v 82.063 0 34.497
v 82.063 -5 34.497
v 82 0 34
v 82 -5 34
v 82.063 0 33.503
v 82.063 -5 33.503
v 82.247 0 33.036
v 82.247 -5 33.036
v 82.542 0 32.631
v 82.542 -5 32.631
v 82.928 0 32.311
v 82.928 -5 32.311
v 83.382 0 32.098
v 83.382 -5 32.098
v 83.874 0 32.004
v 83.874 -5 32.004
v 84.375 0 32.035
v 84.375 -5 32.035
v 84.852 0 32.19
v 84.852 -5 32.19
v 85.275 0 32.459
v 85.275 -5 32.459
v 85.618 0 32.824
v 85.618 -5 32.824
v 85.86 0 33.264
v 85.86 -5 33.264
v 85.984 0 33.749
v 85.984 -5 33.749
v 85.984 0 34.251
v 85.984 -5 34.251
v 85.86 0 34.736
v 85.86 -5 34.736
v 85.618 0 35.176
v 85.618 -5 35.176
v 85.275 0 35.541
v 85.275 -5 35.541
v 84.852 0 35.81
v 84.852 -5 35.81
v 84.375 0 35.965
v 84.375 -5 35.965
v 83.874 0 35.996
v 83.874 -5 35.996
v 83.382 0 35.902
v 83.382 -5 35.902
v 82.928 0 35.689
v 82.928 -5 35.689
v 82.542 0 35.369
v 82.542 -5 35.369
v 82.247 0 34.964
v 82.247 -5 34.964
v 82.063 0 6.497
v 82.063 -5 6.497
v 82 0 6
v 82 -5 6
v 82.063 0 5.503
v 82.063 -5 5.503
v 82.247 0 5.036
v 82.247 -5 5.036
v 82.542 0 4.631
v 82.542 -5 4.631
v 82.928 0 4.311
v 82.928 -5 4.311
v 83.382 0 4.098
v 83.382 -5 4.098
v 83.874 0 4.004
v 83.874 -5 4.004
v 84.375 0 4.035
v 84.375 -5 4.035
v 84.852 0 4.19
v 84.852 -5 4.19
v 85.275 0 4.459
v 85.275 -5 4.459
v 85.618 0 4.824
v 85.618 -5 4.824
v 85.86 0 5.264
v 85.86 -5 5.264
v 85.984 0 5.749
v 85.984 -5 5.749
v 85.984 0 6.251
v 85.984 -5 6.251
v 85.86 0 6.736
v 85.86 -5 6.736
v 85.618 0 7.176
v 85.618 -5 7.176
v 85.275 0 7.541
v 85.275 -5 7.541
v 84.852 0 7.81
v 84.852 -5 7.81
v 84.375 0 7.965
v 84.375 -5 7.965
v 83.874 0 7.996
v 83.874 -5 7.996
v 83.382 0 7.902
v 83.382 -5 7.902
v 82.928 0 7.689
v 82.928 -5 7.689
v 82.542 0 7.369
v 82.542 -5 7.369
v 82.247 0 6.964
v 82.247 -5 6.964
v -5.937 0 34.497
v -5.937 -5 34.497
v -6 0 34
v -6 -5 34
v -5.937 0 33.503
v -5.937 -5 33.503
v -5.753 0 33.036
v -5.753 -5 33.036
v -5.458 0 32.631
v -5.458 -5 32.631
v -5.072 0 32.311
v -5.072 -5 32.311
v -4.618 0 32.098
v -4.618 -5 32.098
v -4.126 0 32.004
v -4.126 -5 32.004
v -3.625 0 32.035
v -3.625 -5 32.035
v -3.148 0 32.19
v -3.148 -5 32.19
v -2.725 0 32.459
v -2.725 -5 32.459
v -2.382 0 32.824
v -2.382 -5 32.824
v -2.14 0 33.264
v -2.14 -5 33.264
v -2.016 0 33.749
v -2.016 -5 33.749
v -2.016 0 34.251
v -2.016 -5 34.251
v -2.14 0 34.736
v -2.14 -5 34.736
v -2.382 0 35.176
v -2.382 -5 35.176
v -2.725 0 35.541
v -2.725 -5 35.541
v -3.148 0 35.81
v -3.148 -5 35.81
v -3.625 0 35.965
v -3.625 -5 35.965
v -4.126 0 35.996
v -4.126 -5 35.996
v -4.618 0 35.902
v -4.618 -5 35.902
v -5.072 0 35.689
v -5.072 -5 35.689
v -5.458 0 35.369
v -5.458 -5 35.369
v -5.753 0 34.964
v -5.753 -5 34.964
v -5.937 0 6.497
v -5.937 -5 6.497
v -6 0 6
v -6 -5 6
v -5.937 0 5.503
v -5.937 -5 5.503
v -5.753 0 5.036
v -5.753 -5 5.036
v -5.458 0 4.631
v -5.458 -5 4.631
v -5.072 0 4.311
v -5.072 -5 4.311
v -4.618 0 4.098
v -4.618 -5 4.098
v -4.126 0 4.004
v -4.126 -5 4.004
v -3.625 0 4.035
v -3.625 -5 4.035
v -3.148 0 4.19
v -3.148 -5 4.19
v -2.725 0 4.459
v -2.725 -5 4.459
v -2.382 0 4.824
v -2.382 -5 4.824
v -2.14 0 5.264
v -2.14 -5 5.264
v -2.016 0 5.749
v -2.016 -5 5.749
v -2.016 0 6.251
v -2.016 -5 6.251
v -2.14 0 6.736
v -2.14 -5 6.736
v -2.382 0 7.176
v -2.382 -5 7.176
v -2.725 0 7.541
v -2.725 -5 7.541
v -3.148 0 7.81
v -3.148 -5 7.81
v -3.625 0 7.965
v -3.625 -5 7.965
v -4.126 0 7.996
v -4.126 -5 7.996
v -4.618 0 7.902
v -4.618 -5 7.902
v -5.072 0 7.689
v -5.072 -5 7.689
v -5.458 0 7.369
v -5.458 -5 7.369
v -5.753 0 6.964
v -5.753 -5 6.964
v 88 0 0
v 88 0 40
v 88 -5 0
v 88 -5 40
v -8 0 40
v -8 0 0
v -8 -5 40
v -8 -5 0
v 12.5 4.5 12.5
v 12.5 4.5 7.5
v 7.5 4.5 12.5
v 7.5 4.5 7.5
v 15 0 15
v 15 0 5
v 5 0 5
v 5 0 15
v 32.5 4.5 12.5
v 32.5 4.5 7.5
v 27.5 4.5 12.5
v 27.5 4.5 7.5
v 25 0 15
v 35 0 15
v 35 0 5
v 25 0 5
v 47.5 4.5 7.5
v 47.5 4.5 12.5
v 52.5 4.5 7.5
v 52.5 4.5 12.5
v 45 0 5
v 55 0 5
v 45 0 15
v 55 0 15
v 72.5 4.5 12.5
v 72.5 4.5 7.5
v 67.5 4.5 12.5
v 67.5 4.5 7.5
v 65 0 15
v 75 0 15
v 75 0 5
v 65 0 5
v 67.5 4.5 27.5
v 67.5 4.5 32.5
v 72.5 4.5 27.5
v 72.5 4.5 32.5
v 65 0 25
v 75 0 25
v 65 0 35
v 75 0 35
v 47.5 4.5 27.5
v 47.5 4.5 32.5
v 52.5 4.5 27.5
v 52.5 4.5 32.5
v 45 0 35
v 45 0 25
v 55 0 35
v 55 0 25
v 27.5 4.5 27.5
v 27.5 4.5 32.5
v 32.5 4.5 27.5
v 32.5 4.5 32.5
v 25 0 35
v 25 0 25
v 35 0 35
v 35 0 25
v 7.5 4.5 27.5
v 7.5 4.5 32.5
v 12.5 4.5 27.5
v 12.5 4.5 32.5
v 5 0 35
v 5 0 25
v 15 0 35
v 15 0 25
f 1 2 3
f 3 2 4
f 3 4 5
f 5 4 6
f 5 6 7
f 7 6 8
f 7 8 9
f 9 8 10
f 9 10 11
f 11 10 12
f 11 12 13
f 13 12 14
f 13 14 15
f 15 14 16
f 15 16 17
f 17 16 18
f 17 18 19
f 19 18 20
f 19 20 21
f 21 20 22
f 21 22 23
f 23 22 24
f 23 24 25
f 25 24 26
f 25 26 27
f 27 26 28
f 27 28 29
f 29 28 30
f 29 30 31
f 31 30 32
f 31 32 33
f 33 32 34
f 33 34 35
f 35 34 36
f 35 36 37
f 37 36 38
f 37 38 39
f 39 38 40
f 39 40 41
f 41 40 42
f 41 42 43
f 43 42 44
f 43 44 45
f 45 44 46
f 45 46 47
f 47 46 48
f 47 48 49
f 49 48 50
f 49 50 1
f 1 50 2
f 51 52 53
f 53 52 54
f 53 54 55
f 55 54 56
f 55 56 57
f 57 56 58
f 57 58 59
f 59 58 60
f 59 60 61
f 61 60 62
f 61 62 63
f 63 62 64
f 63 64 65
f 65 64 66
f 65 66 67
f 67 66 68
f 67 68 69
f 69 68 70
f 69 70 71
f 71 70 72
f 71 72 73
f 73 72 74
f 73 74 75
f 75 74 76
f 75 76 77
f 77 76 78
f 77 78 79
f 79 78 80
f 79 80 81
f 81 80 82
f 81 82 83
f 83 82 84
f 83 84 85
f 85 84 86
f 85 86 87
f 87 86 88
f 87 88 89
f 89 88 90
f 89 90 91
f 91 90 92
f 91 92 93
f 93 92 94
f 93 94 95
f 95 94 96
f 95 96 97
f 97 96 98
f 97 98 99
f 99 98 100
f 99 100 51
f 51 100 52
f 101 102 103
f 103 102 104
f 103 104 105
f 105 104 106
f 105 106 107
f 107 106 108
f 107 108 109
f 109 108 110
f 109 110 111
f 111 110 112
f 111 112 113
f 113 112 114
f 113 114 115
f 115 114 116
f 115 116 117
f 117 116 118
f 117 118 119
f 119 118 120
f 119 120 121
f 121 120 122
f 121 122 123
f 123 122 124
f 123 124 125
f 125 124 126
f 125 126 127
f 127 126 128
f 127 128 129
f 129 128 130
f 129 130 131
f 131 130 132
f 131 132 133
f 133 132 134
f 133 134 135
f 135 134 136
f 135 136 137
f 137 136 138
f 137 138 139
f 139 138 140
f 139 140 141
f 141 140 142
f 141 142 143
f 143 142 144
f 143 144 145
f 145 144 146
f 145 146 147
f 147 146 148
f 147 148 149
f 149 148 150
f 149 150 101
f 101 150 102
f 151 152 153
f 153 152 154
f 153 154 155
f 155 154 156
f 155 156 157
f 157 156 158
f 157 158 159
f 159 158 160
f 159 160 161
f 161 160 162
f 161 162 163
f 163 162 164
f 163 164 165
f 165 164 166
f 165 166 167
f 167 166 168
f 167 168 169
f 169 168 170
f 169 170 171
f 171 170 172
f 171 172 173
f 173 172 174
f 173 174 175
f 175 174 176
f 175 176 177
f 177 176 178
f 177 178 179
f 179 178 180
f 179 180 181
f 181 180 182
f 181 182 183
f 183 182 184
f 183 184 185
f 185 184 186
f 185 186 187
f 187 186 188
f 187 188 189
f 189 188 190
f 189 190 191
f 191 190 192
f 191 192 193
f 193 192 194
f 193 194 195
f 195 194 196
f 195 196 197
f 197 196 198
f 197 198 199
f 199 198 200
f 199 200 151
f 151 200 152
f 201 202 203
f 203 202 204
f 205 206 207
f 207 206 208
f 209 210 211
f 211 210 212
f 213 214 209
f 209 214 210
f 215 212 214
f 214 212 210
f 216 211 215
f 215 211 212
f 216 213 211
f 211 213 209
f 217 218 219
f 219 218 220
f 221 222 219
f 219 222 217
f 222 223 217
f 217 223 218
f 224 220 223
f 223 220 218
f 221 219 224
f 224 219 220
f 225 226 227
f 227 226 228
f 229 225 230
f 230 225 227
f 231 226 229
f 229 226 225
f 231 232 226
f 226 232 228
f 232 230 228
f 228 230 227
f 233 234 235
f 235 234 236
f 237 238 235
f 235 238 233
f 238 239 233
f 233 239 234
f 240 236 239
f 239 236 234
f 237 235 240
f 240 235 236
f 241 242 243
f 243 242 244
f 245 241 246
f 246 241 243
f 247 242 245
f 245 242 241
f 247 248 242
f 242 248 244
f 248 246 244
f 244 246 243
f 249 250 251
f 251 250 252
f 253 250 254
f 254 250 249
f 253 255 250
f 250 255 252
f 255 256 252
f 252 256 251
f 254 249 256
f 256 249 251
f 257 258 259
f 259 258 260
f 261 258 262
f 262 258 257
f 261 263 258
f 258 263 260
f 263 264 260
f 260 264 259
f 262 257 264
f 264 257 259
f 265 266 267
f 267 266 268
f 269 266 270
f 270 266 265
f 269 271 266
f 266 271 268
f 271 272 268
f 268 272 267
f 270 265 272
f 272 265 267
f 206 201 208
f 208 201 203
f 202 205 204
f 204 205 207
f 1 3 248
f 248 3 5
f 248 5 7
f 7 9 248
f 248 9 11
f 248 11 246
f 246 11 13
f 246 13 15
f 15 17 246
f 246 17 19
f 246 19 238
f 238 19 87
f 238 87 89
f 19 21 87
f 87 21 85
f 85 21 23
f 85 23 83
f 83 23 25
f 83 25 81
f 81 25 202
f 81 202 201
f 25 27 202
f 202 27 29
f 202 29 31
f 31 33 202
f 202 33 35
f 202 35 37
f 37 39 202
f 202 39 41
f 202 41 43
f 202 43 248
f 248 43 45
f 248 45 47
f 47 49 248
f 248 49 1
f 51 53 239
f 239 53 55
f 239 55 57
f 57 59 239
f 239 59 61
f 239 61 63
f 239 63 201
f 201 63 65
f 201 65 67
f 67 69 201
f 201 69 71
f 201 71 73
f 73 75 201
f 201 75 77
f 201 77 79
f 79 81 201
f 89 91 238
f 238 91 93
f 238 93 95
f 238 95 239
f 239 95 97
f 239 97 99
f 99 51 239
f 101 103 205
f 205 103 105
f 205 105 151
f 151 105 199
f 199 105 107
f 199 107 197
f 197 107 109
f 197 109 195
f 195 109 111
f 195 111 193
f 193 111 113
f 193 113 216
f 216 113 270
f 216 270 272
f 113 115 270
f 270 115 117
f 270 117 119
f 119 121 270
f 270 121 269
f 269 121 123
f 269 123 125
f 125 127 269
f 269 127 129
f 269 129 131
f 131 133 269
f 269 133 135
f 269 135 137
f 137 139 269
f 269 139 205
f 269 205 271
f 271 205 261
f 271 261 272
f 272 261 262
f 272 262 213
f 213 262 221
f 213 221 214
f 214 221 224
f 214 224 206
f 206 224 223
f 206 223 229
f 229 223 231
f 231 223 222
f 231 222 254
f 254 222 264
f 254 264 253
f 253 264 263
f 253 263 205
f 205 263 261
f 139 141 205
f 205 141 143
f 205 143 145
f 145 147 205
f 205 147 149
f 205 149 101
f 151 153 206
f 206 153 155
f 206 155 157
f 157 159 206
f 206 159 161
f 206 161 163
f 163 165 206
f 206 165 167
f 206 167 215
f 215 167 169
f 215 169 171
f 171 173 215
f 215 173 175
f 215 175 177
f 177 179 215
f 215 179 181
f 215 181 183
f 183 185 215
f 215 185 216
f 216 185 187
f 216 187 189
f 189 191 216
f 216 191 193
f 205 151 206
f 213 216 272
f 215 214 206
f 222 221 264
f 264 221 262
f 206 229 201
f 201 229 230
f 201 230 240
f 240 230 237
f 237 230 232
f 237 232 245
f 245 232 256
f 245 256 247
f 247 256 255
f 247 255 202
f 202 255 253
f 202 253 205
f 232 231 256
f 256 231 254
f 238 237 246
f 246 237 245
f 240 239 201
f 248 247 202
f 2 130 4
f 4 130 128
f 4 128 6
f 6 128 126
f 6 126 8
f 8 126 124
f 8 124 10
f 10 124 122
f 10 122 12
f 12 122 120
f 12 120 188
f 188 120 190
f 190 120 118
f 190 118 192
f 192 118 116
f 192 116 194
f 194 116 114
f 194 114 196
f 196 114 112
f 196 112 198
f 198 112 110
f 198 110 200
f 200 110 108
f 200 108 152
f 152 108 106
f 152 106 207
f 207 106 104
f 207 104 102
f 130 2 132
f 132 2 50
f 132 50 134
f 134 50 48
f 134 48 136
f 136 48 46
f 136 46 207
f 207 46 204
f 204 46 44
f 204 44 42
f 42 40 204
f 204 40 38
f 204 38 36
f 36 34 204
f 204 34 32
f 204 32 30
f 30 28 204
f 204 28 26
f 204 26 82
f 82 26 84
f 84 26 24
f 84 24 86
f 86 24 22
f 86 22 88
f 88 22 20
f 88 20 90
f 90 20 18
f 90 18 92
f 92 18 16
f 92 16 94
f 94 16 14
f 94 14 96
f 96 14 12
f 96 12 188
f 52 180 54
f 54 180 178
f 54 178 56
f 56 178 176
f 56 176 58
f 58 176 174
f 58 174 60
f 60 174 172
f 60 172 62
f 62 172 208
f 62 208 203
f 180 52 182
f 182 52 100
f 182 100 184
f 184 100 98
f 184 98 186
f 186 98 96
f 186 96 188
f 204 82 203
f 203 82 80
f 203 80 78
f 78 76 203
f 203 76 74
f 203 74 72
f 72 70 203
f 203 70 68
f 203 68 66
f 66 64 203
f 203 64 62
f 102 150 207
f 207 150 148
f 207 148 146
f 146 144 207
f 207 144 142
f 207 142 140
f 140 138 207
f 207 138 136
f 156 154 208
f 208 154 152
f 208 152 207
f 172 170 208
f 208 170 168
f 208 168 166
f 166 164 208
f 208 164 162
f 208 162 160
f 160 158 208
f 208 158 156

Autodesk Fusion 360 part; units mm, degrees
sketch "baseplate" plane through (0, 0, 0) normal (0, 1, 0) x (1, 0, 0)
  line L0 (0, 0) -> (80, 0)
  line L1 (80, 0) -> (80, -40)
  line L2 (80, -40) -> (0, -40)
  line L3 (0, -40) -> (0, 0)
  dimension "d1" = 80
  dimension "d2" = 40
sketch "pryamid_base" plane through (0, 0, 0) normal (0, 1, 0) x (1, 0, 0)
  line L0 (5, -35) -> (15, -35)
  line L1 (15, -35) -> (15, -25)
  line L2 (15, -25) -> (5, -25)
  line L3 (5, -25) -> (5, -35)
  line L4 (35, -35) -> (35, -25)
  line L5 (35, -25) -> (25, -25)
  line L6 (25, -35) -> (35, -35)
  line L7 (25, -25) -> (25, -35)
  line L8 (75, -35) -> (75, -25)
  line L9 (45, -35) -> (55, -35)
  line L10 (55, -25) -> (45, -25)
  line L11 (65, -25) -> (65, -35)
  line L12 (65, -35) -> (75, -35)
  line L13 (55, -35) -> (55, -25)
  line L14 (45, -25) -> (45, -35)
  line L15 (75, -25) -> (65, -25)
  line L16 (35, -5) -> (25, -5)
  line L17 (35, -15) -> (35, -5)
  line L18 (15, -5) -> (5, -5)
  line L19 (25, -5) -> (25, -15)
  line L20 (45, -15) -> (55, -15)
  line L21 (55, -15) -> (55, -5)
  line L22 (5, -5) -> (5, -15)
  line L23 (45, -5) -> (45, -15)
  line L24 (75, -15) -> (75, -5)
  line L25 (65, -5) -> (65, -15)
  line L26 (75, -5) -> (65, -5)
  line L27 (55, -5) -> (45, -5)
  line L28 (65, -15) -> (75, -15)
  line L29 (5, -15) -> (15, -15)
  line L30 (15, -15) -> (15, -5)
  line L31 (25, -15) -> (35, -15)
  dimension "d3" = 10
  dimension "d4" = 10
  dimension "d5" = 10
  dimension "d6" = 10
  dimension "d7" = 10
  dimension "d8" = 10
  dimension "d9" = 10
  dimension "d10" = 10
  dimension "d11" = 10
  dimension "d12" = 10
  dimension "d13" = 10
  dimension "d14" = 10
  dimension "d15" = 10
  dimension "d16" = 10
  dimension "d17" = 10
  dimension "d18" = 10
ref_plane "WorkPlane1" through (0, 4.5, 0) normal (0, 1, 0) x (0, 0, 1)
sketch "pryamid_offsetplane" plane through (0, 4.5, 0) normal (0, 1, 0) x (1, 0, 0)
  line L0 (7.5, -32.5) -> (12.5, -32.5)
  line L1 (12.5, -32.5) -> (12.5, -27.5)
  line L2 (12.5, -27.5) -> (7.5, -27.5)
  line L3 (7.5, -27.5) -> (7.5, -32.5)
  line L4 (27.5, -27.5) -> (27.5, -32.5)
  line L5 (32.5, -32.5) -> (32.5, -27.5)
  line L6 (27.5, -32.5) -> (32.5, -32.5)
  line L7 (32.5, -27.5) -> (27.5, -27.5)
  line L8 (7.5, -27.5) -> (7.5, -32.5)
  line L9 (12.5, -32.5) -> (12.5, -27.5)
  line L10 (7.5, -32.5) -> (12.5, -32.5)
  line L11 (12.5, -27.5) -> (7.5, -27.5)
  line L12 (47.5, -27.5) -> (47.5, -32.5)
  line L13 (52.5, -32.5) -> (52.5, -27.5)
  line L14 (47.5, -32.5) -> (52.5, -32.5)
  line L15 (52.5, -27.5) -> (47.5, -27.5)
  line L16 (67.5, -27.5) -> (67.5, -32.5)
  line L17 (72.5, -32.5) -> (72.5, -27.5)
  line L18 (67.5, -32.5) -> (72.5, -32.5)
  line L19 (72.5, -27.5) -> (67.5, -27.5)
  line L20 (72.5, -12.5) -> (72.5, -7.5)
  line L21 (27.5, -7.5) -> (27.5, -12.5)
  line L22 (12.5, -12.5) -> (12.5, -7.5)
  line L23 (72.5, -7.5) -> (67.5, -7.5)
  line L24 (12.5, -7.5) -> (7.5, -7.5)
  line L25 (52.5, -12.5) -> (52.5, -7.5)
  line L26 (7.5, -7.5) -> (7.5, -12.5)
  line L27 (7.5, -12.5) -> (12.5, -12.5)
  line L28 (47.5, -12.5) -> (52.5, -12.5)
  line L29 (67.5, -7.5) -> (67.5, -12.5)
  line L30 (47.5, -7.5) -> (47.5, -12.5)
  line L31 (67.5, -12.5) -> (72.5, -12.5)
  line L32 (32.5, -7.5) -> (27.5, -7.5)
  line L33 (52.5, -7.5) -> (47.5, -7.5)
  line L34 (27.5, -12.5) -> (32.5, -12.5)
  line L35 (12.5, -7.5) -> (7.5, -7.5)
  line L36 (32.5, -12.5) -> (32.5, -7.5)
  line L37 (12.5, -12.5) -> (12.5, -7.5)
  line L38 (7.5, -12.5) -> (12.5, -12.5)
  line L39 (7.5, -7.5) -> (7.5, -12.5)
extrude "Extrude1" add sketch "baseplate" against normal blind 5
loft "Loft1" add profiles "pryamid_base", "pryamid_offsetplane" section 1 contours L0 L1 L2 L3 section 2 contours L0 L1 L2 L3 L8 L9 L10 L11
loft "Loft2" add profiles "pryamid_base", "pryamid_offsetplane" section 1 contours L4 L5 L6 L7 section 2 contours L4 L5 L6 L7
loft "Loft3" add profiles "pryamid_base", "pryamid_offsetplane" section 1 contours L9 L10 L13 L14 section 2 contours L12 L13 L14 L15
loft "Loft4" add profiles "pryamid_base", "pryamid_offsetplane" section 1 contours L8 L11 L12 L15 section 2 contours L16 L17 L18 L19
loft "Loft5" add profiles "pryamid_base", "pryamid_offsetplane" section 1 contours L24 L25 L26 L28 section 2 contours L20 L23 L29 L31
loft "Loft6" add profiles "pryamid_base", "pryamid_offsetplane" section 1 contours L20 L21 L23 L27 section 2 contours L25 L28 L30 L33
loft "Loft7" add profiles "pryamid_base", "pryamid_offsetplane" section 1 contours L16 L17 L19 L31 section 2 contours L21 L32 L34 L36
loft "Loft8" add profiles "pryamid_base", "pryamid_offsetplane" section 1 contours L18 L22 L29 L30 section 2 contours L22 L24 L26 L27 L35 L37 L38 L39
sketch "sidewall" plane through (0, 0, 0) normal (0, 1, 0) x (1, 0, 0)
  line L0 (0, 0) -> (-8, 0)
  line L1 (-8, 0) -> (-8, -40)
  line L2 (-8, -40) -> (0, -40)
  line L3 (0, -40) -> (0, 0)
  dimension "d22" = 8
extrude "Extrude2" add sketch "sidewall" along normal blind 0 and the other way blind 5
sketch "sidemount" plane through (0, 0, 0) normal (0, 1, 0) x (1, 0, 0)
  line L0 (80, 0) -> (88, 0)
  line L1 (88, 0) -> (88, -40)
  line L2 (88, -40) -> (80, -40)
  line L3 (80, -40) -> (80, 0)
extrude "Extrude3" add sketch "sidemount" against normal blind 5
sketch "holes" plane through (0, -5, 0) normal (0, -1, 0) x (1, 0, 0)
  line L0 (88, 40) -> (-8, 40)
  line L1 (-8, 40) -> (-8, 0)
  line L2 (-8, 0) -> (88, 0)
  line L3 (88, 0) -> (88, 40)
  line L4 (-8, 0) -> (-4, 0)
  line L5 (-8, 6) -> (-8, 0)
  line L6 (-4, 40) -> (-8, 40)
  line L7 (-8, 40) -> (-8, 34)
  circle A0 centre (-4, 34) radius 2
  circle A1 centre (-4, 6) radius 2
  circle A2 centre (-4, 34) radius 3.4
  circle A3 centre (-4, 6) radius 3.4
  dimension "d29" = 6
  dimension "d30" = 4
  dimension "d31" = 4
  dimension "d32" = 6.8
  dimension "d33" = 6.8
extrude "Extrude4" cut sketch "holes" against normal blind 51 contours A0 | A1
sketch "Sketch7" plane through (0, -5, 0) normal (0, -1, 0) x (1, 0, 0)
  circle A0 centre (84, 34) radius 2
  circle A1 centre (84, 6) radius 2
  circle A2 centre (84, 34) radius 3.4
  circle A3 centre (84, 6) radius 3.4
  dimension "d42" = 4
  dimension "d43" = 4
  dimension "d44" = 6.8
  dimension "d45" = 6.8
extrude "Extrude6" cut sketch "Sketch7" against normal blind 16 contours A0 | A1
